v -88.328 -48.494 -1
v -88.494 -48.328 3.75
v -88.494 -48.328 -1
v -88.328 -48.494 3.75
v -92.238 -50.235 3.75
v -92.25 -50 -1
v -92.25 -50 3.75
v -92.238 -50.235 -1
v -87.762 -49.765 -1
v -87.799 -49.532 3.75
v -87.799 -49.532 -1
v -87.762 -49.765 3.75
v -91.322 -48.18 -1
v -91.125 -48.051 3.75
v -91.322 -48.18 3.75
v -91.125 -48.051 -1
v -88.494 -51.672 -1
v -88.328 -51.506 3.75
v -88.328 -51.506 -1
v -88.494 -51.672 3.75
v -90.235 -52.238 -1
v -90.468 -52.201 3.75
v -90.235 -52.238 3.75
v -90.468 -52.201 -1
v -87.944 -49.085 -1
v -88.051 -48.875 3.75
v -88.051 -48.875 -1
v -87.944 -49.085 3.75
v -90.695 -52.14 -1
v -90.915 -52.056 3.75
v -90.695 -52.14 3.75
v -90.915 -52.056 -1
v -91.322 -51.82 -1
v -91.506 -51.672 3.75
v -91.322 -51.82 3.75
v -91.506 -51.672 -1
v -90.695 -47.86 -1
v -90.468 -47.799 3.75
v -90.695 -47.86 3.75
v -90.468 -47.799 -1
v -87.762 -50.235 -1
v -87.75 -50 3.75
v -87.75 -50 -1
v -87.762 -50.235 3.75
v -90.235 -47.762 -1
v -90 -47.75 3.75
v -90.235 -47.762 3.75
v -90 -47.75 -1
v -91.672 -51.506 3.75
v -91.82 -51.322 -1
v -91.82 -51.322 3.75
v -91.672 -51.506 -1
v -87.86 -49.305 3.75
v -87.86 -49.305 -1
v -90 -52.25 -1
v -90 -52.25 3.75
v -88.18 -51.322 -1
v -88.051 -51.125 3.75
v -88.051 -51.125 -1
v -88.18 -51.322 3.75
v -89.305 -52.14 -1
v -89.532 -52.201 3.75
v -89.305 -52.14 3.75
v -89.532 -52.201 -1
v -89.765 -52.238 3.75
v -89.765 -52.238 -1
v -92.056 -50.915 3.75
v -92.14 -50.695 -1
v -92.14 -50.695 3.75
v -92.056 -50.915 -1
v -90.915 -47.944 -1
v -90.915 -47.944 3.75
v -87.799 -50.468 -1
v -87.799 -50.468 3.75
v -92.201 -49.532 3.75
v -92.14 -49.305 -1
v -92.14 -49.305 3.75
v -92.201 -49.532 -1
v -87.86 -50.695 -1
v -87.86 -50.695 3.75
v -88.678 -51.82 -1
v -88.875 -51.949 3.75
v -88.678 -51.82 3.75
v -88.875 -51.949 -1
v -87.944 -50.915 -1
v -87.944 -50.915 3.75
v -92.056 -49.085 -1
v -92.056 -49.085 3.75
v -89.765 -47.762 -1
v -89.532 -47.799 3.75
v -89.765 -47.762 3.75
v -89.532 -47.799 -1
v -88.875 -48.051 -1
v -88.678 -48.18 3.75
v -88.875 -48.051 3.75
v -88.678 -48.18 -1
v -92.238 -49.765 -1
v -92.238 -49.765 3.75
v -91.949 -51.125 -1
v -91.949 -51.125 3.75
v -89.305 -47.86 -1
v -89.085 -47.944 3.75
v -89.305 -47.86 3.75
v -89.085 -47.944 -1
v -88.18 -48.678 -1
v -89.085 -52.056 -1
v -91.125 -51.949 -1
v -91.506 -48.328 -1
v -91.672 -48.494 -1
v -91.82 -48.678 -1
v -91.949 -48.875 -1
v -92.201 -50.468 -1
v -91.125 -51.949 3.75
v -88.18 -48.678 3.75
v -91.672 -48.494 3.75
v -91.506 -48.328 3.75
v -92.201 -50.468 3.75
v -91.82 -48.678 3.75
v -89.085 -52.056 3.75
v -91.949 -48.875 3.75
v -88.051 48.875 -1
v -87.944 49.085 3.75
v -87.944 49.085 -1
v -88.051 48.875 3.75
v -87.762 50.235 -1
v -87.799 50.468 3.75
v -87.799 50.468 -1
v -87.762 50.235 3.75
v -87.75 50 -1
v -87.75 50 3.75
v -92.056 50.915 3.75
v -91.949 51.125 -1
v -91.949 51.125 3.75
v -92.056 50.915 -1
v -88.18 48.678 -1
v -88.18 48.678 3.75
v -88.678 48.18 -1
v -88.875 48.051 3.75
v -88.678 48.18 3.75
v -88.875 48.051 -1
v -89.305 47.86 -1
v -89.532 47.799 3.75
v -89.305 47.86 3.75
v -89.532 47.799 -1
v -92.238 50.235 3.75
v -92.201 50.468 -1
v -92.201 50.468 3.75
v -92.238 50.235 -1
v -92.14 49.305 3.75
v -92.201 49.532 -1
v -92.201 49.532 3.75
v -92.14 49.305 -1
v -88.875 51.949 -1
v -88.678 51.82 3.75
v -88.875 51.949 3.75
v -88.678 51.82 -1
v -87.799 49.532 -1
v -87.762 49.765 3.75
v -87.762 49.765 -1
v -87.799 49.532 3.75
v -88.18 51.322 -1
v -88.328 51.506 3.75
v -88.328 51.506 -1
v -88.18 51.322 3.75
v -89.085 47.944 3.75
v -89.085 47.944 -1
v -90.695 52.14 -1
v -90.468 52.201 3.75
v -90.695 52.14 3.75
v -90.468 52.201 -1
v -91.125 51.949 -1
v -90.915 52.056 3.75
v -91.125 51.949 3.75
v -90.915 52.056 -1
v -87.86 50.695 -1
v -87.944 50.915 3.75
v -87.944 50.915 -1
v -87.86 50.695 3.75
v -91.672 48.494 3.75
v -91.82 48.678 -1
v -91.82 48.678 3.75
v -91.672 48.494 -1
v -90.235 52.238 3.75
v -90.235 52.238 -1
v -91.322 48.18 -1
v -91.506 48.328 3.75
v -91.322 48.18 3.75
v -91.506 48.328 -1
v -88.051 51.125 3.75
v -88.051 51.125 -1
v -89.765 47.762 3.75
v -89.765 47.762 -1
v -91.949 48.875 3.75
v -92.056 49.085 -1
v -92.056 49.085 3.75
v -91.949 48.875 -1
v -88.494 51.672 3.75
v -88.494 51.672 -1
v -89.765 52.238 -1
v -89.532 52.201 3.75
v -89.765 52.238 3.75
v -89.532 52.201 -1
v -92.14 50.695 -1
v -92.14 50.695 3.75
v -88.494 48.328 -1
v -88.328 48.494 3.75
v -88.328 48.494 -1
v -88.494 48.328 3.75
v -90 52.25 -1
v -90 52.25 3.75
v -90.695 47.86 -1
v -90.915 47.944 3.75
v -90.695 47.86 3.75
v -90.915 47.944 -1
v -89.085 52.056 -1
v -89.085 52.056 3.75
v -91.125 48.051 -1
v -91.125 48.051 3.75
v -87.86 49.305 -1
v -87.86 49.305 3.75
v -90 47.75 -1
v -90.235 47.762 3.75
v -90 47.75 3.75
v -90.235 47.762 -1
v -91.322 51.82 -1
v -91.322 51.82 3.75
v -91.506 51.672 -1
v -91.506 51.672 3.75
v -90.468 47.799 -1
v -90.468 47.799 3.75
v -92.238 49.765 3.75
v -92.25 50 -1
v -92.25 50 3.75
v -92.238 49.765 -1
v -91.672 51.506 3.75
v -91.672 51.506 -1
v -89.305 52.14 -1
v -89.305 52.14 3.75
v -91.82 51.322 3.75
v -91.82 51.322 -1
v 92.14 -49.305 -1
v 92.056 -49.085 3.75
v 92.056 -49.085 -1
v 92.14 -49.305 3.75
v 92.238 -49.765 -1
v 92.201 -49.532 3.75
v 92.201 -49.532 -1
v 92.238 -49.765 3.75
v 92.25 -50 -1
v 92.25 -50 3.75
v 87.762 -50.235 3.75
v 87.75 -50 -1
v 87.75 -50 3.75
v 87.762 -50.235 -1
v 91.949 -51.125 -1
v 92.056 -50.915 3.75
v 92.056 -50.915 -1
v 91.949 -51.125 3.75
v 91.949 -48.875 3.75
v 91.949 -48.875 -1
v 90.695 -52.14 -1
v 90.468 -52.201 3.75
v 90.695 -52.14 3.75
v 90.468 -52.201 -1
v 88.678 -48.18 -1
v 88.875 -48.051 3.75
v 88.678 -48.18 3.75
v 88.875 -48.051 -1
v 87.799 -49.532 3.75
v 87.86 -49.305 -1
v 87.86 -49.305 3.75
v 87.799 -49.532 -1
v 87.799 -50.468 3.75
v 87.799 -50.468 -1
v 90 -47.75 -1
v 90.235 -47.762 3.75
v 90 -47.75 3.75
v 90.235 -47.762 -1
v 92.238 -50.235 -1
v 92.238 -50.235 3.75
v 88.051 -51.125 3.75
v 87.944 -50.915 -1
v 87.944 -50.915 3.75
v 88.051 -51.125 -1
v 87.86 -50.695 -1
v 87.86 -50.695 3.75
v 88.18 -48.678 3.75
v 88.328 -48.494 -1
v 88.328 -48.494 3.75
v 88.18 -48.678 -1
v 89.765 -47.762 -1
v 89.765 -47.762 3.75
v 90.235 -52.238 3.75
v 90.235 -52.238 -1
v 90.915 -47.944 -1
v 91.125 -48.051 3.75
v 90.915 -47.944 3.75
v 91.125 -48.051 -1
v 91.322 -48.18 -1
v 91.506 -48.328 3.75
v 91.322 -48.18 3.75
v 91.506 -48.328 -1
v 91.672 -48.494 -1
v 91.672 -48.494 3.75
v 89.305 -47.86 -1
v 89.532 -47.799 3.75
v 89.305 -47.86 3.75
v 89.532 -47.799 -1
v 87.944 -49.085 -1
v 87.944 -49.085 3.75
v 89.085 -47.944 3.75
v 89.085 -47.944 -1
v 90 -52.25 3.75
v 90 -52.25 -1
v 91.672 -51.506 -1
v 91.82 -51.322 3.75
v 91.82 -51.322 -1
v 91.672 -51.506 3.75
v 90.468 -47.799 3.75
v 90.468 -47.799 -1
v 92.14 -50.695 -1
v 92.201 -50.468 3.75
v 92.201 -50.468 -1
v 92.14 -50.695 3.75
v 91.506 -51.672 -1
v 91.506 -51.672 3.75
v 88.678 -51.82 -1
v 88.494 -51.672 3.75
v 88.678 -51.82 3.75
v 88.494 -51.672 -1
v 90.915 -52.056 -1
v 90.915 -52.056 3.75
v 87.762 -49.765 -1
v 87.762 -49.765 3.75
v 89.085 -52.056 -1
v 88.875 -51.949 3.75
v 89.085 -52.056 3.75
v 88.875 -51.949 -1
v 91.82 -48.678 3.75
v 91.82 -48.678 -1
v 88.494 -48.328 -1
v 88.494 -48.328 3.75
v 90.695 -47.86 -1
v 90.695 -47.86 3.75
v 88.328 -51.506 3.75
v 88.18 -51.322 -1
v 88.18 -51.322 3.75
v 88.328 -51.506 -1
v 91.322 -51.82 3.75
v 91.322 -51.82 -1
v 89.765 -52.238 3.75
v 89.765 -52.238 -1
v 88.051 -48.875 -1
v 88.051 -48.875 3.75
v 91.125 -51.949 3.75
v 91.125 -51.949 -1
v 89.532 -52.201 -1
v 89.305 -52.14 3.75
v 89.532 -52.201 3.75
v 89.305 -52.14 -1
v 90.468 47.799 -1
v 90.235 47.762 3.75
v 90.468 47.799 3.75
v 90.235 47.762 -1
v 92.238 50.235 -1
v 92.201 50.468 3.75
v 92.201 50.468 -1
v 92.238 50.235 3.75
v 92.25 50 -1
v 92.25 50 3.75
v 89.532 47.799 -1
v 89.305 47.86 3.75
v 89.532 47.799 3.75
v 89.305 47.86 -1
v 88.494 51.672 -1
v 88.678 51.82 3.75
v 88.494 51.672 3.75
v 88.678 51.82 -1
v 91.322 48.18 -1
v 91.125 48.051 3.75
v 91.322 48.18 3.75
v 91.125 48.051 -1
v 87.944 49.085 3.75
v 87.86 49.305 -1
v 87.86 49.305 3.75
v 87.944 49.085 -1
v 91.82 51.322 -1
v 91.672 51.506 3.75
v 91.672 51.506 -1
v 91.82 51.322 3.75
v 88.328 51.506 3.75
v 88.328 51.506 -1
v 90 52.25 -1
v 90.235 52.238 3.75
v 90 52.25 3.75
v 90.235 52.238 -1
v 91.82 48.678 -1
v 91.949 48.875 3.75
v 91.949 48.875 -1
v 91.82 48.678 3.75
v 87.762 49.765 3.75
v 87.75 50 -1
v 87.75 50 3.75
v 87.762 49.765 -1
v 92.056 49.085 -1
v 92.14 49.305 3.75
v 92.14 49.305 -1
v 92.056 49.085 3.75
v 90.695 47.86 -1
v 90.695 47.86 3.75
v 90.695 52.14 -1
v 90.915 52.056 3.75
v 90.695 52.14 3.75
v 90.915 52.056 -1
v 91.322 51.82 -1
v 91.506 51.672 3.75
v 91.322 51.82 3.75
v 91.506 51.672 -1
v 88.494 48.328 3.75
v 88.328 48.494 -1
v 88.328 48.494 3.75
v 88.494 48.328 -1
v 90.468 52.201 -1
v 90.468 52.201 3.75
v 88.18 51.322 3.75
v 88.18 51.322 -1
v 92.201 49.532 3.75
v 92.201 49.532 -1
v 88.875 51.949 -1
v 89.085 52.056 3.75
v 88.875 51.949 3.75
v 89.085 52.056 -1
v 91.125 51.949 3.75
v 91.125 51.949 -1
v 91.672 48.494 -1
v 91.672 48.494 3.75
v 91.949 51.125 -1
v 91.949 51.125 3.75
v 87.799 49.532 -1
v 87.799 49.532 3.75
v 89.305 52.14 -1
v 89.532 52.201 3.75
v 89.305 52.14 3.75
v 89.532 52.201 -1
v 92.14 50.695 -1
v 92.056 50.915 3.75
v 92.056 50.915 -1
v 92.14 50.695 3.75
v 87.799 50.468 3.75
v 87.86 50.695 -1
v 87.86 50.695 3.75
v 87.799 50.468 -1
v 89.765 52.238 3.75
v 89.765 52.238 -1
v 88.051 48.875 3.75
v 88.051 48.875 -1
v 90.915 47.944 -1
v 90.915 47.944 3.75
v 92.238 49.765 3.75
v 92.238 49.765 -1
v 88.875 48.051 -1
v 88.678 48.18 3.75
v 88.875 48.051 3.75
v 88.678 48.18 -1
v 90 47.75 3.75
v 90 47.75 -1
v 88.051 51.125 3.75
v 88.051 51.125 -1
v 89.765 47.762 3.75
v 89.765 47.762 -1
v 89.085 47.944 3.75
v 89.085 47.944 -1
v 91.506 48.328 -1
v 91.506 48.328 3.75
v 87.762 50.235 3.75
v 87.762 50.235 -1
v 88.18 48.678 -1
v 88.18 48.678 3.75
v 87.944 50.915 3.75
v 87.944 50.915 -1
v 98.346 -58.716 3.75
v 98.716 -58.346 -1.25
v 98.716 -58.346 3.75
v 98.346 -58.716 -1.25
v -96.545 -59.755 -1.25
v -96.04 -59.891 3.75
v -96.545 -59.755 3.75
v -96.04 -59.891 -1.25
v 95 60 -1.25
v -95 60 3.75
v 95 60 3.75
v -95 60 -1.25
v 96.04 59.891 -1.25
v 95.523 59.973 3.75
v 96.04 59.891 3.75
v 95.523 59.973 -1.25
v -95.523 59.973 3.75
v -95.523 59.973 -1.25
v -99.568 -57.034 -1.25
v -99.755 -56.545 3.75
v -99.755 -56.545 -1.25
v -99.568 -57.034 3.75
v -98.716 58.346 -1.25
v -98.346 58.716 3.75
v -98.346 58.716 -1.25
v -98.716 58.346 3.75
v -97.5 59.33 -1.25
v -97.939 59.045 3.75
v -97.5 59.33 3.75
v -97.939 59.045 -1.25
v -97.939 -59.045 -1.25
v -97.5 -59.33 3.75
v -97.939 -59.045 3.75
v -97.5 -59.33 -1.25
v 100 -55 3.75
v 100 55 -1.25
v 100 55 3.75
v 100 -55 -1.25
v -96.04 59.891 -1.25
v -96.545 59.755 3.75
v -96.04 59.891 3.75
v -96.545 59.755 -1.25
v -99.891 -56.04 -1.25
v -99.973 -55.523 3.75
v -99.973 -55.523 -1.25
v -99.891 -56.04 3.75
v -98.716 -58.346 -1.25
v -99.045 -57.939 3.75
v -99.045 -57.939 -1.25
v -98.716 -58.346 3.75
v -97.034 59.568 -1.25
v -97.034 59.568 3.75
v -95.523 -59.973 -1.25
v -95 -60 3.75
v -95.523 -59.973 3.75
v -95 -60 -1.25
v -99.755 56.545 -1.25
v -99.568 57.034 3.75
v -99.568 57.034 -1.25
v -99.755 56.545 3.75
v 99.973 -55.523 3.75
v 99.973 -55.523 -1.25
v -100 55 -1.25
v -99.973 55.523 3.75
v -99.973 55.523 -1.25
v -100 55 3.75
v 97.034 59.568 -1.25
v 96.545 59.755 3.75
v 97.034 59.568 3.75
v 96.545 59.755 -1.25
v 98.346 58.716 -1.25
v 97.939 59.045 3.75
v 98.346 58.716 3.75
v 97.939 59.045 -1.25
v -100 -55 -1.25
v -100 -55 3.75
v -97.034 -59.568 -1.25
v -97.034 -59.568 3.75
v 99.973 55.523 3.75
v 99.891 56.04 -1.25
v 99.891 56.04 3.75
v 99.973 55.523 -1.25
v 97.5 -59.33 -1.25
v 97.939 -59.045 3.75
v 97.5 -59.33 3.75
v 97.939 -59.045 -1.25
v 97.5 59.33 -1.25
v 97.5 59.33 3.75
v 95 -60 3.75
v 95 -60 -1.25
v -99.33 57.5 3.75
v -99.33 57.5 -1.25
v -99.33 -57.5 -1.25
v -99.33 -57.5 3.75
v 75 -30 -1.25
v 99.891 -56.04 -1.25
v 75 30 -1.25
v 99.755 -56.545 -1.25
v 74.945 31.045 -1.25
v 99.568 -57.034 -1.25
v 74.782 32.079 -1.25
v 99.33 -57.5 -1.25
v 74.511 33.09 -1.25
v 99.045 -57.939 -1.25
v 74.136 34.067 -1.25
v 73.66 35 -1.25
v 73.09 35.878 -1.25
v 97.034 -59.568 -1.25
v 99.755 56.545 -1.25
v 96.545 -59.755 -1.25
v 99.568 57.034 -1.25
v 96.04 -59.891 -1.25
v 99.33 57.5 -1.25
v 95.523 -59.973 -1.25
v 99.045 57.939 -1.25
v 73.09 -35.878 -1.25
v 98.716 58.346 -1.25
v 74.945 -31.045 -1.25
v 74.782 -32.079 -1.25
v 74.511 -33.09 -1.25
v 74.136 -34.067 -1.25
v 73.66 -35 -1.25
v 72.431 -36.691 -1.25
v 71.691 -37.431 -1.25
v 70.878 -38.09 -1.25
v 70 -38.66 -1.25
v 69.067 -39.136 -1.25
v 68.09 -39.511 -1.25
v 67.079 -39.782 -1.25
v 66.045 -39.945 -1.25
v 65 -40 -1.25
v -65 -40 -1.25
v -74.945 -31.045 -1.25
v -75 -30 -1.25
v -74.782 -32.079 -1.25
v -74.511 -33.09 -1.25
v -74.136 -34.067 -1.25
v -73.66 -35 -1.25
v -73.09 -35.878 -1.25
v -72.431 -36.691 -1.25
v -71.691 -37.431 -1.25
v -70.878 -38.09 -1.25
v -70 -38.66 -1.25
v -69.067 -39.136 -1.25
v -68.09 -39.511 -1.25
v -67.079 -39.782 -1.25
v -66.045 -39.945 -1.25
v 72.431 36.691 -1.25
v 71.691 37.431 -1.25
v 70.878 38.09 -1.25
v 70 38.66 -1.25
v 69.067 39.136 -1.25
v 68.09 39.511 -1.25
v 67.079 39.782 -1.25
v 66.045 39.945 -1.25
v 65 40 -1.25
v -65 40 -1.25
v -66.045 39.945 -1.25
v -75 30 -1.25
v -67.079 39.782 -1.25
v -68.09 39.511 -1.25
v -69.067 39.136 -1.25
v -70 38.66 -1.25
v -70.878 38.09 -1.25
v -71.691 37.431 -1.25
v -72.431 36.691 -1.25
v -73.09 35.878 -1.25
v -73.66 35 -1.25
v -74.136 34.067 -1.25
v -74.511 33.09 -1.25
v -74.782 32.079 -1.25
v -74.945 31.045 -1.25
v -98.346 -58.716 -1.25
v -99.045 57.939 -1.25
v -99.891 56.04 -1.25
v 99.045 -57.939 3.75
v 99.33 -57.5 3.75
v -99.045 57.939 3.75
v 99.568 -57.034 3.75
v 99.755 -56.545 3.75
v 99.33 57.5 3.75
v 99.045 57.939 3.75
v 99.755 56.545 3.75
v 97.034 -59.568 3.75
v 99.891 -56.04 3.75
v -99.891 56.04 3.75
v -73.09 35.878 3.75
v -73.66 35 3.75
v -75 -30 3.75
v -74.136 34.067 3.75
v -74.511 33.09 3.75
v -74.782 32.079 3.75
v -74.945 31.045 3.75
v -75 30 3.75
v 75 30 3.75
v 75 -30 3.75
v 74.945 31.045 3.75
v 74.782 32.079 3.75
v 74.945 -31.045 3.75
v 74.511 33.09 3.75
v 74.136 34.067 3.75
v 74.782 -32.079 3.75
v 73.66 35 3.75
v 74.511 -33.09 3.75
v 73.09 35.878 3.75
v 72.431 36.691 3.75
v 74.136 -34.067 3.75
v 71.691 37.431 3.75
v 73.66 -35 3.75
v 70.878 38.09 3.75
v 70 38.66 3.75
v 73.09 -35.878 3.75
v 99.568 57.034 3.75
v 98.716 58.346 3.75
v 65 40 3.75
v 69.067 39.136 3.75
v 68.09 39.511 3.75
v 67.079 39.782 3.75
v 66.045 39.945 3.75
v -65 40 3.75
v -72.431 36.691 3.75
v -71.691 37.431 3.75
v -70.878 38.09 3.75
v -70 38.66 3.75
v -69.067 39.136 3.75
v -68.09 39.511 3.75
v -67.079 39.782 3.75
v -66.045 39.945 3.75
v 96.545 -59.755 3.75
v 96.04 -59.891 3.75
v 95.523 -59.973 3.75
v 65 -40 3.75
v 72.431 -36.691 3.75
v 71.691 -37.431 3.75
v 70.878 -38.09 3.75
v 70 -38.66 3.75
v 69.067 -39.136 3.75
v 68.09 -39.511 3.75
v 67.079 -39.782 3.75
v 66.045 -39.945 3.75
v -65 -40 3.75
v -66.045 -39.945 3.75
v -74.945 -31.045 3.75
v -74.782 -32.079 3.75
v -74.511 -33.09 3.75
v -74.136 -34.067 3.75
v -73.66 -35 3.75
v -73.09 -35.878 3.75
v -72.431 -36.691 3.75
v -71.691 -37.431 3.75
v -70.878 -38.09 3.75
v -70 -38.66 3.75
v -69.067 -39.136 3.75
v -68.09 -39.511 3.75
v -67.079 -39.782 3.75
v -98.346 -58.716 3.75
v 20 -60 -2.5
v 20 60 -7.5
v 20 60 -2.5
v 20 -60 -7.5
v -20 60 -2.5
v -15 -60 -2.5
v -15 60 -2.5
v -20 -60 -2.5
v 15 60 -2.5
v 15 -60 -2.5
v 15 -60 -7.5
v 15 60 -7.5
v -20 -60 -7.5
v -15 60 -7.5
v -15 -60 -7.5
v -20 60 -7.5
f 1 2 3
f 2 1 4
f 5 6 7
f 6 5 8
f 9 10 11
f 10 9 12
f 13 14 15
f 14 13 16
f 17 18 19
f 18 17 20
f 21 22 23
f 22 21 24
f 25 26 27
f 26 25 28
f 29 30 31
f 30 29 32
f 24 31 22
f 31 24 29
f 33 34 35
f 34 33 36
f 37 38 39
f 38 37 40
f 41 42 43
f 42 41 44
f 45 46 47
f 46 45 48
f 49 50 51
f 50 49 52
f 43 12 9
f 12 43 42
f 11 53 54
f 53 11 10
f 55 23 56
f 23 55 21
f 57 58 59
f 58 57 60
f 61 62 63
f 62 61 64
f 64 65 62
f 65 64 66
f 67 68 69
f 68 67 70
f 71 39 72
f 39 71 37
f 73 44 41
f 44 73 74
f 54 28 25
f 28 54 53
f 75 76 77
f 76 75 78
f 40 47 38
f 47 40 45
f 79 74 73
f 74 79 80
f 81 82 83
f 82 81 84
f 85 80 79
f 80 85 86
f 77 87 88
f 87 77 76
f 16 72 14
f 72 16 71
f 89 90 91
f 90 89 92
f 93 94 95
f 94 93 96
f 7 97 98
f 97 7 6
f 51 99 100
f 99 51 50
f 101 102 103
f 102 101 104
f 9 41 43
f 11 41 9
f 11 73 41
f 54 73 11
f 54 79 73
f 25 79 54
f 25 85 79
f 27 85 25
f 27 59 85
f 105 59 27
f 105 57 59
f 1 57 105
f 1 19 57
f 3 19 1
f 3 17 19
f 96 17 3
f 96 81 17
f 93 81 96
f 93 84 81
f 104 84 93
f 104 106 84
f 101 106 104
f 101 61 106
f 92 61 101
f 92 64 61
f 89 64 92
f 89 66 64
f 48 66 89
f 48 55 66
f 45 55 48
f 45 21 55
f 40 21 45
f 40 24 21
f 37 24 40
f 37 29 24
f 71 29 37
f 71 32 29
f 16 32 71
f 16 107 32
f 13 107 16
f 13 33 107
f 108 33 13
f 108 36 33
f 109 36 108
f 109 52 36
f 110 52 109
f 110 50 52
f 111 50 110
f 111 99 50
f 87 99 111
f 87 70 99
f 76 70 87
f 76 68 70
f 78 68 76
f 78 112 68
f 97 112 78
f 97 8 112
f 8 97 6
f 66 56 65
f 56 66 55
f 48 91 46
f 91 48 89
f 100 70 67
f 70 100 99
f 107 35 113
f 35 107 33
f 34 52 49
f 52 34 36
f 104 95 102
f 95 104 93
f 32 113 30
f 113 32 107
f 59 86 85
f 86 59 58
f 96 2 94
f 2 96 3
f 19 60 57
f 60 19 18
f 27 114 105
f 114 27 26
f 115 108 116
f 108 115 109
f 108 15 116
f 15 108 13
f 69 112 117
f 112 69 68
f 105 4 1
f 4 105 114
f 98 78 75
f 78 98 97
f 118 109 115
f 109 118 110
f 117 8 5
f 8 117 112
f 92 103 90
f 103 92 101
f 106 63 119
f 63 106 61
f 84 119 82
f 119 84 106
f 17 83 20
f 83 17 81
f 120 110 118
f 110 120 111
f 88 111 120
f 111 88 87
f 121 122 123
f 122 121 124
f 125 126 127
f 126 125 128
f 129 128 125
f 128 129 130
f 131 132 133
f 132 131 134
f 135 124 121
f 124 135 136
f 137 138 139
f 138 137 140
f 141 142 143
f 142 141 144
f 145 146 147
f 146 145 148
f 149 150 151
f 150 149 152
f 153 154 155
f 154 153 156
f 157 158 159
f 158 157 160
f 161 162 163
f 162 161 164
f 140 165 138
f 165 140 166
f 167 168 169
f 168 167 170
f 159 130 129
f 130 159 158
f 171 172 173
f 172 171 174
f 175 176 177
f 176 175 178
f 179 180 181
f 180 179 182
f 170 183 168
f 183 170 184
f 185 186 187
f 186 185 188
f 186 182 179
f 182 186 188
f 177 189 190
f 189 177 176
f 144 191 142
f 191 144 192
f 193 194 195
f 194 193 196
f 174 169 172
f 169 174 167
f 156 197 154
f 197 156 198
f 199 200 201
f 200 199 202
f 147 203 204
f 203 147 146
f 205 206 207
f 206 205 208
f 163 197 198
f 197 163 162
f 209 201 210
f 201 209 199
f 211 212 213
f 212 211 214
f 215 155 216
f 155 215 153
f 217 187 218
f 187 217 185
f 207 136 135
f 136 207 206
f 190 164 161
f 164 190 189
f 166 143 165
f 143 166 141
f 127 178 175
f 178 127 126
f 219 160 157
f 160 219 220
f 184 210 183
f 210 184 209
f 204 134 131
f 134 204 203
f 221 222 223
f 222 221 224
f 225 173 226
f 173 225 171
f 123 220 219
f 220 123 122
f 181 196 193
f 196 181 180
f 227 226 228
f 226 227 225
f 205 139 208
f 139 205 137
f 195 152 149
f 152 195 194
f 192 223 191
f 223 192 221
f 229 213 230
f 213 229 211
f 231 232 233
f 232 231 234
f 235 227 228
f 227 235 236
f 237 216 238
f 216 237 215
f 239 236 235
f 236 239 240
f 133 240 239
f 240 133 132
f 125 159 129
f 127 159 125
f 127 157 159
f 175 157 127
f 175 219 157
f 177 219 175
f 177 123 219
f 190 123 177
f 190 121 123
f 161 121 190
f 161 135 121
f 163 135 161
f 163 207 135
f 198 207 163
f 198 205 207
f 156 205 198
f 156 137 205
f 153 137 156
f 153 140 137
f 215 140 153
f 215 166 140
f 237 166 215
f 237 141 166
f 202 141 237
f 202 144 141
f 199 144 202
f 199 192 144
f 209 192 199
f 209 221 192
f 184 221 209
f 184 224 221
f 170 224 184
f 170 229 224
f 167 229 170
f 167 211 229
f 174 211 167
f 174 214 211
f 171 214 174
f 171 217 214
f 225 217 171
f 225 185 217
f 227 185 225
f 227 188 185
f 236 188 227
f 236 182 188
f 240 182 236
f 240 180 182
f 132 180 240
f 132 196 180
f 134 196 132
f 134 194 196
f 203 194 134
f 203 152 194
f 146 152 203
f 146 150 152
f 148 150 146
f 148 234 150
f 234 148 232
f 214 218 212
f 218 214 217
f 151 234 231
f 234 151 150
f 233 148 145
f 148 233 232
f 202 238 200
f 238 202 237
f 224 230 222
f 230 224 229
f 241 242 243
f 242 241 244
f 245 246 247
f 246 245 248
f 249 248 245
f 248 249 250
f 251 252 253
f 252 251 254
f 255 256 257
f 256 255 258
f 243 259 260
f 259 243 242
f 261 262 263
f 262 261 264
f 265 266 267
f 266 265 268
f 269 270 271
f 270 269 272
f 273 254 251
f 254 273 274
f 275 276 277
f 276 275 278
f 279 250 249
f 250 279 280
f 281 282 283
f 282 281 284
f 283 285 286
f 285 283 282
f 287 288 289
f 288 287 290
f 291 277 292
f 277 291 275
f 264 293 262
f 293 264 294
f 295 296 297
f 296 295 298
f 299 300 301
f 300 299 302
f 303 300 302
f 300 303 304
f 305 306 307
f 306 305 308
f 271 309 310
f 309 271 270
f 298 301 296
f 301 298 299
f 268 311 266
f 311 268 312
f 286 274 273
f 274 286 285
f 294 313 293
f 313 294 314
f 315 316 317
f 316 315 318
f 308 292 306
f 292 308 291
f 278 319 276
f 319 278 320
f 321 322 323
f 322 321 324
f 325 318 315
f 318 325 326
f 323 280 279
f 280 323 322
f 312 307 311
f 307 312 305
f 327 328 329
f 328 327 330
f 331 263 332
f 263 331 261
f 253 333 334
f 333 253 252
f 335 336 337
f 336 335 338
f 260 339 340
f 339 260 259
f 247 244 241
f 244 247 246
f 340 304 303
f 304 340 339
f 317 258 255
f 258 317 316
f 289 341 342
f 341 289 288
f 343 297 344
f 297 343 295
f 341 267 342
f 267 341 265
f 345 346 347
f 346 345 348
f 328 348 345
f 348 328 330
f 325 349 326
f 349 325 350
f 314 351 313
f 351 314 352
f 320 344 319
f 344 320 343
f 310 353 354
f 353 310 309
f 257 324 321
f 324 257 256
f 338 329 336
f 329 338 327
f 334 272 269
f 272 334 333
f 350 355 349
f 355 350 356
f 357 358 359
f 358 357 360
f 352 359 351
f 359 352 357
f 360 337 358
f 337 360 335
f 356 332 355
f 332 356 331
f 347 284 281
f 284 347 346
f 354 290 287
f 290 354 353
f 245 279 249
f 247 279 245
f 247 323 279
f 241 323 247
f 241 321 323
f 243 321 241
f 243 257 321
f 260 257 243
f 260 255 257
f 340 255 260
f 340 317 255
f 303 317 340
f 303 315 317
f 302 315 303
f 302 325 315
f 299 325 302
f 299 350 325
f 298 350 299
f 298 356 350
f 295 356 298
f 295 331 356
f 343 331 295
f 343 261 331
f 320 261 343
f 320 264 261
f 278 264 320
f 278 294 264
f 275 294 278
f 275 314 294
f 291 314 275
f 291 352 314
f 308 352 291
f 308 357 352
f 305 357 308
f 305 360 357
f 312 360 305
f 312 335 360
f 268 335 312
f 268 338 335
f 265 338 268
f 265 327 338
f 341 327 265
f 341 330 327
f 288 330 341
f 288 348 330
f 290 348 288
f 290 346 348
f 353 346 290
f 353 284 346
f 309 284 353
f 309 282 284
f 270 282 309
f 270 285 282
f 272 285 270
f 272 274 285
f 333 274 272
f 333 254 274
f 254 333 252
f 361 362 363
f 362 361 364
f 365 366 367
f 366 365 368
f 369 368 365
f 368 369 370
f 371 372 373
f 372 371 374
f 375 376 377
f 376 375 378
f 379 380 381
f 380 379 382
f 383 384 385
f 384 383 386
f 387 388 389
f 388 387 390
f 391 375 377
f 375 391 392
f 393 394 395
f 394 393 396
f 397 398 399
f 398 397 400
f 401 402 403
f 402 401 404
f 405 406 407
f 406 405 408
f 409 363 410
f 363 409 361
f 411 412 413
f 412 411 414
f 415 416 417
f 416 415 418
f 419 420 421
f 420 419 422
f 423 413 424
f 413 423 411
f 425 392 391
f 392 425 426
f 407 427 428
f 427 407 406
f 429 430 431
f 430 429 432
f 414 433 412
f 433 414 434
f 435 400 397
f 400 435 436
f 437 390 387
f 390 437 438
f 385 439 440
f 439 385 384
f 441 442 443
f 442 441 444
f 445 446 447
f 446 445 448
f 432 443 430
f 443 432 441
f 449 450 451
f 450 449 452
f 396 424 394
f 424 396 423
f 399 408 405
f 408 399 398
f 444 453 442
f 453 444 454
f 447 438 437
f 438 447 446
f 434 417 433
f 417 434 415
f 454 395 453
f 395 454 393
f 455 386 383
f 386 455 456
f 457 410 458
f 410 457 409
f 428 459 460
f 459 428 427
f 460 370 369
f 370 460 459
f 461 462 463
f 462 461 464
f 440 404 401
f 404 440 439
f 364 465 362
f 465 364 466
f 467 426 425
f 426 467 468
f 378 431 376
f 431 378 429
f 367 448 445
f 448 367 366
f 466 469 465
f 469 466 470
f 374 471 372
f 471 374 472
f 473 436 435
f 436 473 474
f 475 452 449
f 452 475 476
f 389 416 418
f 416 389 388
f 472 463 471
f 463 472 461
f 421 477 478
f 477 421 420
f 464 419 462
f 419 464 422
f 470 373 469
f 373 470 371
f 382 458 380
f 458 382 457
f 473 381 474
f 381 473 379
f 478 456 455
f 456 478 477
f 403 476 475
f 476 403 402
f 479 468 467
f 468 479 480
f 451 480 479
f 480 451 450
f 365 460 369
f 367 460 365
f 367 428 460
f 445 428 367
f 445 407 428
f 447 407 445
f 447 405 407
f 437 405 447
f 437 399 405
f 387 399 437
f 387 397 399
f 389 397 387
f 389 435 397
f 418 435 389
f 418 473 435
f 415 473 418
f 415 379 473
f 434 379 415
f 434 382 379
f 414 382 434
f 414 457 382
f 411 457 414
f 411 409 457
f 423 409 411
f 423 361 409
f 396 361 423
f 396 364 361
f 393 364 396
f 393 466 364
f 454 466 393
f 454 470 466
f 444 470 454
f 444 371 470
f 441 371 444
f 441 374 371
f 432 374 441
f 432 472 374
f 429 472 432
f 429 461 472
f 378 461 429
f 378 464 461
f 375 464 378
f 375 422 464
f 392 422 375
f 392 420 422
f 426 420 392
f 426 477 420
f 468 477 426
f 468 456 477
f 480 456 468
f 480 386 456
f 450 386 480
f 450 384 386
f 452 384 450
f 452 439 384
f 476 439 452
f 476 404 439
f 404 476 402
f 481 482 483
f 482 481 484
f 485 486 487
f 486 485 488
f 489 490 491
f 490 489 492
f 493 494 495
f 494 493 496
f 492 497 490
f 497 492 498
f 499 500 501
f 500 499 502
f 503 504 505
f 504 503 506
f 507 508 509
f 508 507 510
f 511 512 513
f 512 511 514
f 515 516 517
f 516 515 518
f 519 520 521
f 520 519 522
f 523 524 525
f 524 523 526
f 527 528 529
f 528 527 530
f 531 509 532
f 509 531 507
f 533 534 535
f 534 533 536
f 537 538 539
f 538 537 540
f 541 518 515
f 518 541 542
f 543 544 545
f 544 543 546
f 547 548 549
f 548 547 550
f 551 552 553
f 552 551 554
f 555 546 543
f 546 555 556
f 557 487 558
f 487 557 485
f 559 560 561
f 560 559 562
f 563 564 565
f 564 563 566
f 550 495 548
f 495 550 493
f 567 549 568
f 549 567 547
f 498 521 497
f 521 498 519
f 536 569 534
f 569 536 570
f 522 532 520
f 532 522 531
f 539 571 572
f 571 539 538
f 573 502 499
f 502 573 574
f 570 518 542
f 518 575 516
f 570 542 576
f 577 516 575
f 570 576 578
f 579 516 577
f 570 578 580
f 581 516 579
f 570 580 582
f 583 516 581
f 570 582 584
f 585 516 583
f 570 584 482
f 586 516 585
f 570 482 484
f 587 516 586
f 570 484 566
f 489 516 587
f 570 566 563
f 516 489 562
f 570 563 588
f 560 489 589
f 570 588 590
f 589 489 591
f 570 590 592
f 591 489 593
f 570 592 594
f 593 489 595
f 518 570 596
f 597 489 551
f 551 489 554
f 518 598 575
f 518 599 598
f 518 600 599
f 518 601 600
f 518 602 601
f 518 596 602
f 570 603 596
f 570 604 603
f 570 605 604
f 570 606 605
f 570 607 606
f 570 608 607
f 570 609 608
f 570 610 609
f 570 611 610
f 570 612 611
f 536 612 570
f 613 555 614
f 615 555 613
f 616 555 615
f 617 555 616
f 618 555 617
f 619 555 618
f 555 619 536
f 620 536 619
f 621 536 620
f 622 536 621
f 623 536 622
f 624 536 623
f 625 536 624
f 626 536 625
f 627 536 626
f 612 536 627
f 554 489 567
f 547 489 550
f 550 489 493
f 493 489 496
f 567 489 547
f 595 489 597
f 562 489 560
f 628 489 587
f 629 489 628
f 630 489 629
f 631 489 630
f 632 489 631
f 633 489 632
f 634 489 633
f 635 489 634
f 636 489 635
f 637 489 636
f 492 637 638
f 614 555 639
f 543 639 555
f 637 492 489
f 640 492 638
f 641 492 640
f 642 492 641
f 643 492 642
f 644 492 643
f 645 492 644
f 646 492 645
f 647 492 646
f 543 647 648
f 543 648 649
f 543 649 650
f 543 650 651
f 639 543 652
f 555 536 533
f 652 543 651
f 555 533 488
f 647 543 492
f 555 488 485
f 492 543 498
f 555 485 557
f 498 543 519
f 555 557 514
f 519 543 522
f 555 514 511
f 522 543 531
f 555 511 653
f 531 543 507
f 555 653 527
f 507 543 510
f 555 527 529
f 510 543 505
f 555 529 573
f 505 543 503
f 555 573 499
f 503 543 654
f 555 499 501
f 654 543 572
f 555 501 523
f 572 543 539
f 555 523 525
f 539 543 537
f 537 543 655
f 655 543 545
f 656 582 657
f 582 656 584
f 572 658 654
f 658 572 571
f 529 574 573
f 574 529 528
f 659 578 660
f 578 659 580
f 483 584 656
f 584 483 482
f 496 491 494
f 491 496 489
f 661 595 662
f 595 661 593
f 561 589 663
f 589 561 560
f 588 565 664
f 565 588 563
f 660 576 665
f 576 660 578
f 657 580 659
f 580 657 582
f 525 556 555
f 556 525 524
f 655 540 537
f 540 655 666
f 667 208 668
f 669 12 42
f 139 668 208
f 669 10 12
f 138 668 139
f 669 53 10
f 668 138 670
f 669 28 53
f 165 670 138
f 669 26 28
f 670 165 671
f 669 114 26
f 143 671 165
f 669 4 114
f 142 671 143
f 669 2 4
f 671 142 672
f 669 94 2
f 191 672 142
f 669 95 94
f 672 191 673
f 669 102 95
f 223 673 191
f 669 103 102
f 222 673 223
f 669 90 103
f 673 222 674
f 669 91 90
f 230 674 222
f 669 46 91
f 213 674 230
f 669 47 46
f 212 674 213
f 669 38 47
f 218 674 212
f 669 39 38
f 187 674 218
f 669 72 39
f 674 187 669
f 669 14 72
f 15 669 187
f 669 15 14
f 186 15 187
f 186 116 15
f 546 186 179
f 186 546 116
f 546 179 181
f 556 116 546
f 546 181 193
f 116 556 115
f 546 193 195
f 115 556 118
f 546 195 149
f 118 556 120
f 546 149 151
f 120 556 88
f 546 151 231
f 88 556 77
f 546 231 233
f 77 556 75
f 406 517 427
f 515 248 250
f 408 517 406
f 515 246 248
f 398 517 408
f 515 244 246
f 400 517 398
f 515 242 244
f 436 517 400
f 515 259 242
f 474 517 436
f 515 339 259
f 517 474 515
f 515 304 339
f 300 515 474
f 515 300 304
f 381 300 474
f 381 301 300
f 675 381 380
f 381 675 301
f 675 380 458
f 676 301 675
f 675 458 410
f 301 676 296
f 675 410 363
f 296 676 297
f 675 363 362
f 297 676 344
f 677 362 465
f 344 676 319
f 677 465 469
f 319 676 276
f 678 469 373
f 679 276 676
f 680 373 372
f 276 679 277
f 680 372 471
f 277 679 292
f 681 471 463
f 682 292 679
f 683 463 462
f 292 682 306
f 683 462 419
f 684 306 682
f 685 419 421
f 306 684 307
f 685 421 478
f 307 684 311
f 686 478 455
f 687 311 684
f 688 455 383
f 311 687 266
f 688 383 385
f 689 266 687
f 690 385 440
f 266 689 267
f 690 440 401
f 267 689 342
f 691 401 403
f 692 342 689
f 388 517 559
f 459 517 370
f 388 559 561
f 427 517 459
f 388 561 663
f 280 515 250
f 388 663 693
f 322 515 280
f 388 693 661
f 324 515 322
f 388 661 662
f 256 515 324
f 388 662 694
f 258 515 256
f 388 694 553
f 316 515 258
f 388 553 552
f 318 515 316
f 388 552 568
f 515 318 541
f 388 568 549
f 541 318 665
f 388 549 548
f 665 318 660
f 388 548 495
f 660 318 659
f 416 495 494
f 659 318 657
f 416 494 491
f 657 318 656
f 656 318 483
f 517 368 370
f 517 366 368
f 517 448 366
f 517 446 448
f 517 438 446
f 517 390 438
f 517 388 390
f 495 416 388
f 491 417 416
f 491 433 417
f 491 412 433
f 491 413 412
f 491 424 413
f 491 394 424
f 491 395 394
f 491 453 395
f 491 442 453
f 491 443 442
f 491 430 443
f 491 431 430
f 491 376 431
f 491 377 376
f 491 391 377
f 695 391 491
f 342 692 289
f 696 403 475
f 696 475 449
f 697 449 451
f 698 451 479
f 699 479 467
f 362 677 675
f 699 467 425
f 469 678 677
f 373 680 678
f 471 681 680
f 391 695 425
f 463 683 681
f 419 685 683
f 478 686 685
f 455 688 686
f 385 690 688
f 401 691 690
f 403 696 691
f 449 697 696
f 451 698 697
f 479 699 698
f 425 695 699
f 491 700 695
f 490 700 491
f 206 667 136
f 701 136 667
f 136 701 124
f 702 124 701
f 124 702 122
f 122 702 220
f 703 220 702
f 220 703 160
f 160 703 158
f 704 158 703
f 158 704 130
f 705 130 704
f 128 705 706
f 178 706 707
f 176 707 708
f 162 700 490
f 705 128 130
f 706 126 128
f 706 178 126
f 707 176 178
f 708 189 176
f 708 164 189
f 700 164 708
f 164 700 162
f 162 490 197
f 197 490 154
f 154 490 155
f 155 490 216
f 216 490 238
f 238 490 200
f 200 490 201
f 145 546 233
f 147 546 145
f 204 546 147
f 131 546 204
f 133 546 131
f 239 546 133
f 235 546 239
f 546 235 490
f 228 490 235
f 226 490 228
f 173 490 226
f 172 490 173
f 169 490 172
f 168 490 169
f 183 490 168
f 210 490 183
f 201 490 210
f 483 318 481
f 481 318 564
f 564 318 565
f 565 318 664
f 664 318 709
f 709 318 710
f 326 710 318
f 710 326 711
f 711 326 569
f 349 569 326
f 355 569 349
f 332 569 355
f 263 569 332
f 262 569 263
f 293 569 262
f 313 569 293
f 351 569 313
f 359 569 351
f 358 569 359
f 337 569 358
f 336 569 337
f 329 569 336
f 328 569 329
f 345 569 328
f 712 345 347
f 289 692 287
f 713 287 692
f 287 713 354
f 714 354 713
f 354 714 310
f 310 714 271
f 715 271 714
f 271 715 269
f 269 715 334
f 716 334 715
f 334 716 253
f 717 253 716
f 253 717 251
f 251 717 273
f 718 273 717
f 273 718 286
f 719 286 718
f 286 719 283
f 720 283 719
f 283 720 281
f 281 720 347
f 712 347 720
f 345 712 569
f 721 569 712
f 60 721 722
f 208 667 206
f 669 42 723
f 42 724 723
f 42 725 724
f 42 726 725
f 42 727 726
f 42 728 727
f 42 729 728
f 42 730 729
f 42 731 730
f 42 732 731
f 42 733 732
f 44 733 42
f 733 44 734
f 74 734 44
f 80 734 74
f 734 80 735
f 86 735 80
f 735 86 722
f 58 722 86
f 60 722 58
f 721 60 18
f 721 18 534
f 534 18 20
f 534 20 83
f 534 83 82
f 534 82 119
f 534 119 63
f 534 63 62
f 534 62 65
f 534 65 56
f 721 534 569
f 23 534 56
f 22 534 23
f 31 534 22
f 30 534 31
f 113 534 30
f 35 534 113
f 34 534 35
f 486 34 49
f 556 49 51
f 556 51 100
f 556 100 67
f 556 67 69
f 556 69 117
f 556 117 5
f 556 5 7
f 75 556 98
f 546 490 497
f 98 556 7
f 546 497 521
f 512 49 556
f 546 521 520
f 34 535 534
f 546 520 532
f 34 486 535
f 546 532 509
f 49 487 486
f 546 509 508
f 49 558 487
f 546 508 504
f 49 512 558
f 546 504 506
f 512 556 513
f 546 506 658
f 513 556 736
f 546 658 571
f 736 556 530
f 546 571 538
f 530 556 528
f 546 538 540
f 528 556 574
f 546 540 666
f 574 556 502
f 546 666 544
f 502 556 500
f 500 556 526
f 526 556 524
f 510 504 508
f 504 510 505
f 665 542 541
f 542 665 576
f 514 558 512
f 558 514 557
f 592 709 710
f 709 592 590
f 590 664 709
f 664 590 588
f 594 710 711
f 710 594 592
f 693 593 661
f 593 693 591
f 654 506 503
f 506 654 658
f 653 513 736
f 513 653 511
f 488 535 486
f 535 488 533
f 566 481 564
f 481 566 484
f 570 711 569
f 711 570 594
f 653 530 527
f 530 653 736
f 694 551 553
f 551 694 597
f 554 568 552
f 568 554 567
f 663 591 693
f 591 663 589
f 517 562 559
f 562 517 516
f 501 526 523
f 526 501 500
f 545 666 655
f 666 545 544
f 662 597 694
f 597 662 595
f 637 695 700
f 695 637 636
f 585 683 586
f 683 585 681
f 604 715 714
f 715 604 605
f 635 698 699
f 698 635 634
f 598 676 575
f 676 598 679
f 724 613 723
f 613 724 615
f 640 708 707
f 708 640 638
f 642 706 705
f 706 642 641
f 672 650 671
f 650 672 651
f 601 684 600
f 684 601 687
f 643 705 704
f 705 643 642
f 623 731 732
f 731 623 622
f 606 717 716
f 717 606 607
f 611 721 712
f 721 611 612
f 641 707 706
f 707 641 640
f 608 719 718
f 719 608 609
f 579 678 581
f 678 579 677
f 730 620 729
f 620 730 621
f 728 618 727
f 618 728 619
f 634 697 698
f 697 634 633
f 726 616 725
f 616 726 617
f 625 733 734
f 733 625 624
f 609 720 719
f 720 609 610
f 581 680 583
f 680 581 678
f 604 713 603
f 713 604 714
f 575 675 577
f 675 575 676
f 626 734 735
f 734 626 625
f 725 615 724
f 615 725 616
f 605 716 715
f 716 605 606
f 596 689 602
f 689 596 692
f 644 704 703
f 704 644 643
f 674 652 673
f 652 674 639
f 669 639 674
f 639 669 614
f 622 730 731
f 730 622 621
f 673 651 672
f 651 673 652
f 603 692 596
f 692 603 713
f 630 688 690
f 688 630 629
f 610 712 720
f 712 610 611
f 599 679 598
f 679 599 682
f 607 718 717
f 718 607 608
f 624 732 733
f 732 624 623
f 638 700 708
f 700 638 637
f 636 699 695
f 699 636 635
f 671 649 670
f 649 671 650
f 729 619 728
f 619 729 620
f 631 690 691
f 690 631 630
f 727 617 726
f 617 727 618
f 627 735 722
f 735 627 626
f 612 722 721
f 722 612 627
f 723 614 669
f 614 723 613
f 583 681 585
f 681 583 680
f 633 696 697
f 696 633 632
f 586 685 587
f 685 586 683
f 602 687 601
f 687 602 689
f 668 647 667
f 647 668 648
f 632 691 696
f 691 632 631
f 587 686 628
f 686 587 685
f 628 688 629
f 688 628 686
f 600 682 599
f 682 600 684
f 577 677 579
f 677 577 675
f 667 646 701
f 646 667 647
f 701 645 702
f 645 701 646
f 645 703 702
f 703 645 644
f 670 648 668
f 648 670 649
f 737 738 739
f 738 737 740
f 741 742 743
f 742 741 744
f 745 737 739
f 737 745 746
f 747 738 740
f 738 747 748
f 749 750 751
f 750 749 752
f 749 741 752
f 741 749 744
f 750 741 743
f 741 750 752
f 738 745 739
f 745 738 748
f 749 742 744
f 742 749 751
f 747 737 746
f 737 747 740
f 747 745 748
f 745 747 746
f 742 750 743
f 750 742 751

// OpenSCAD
// ShopVac Rat Trap - Hammond Box Adapter
// Allows mounting a commercial Hammond PN-1334-C box to the trap body
// Uses snap-fits to attach to the trap, and screws to hold the box

$fn = 60;

// Hammond PN-1334-C Mounting Holes (approximate, verify with datasheet)
hole_spacing_x = 180;
hole_spacing_y = 100;

module hammond_mount() {
    difference() {
        // Base Plate
        rounded_plate(200, 120, 5, 5);

        // Mounting Holes for Hammond Box (M4)
        for(x = [-hole_spacing_x/2, hole_spacing_x/2]) {
            for(y = [-hole_spacing_y/2, hole_spacing_y/2]) {
                translate([x, y, -1])
                    cylinder(d=4.5, h=10);
            }
        }

        // Central Cutout for Weight Reduction
        rounded_plate(150, 80, 10, 10);
    }

    // Snap Clips for Trap Body (Bottom side)
    // Matches the trap body's mounting rails
    translate([0, 0, -5]) {
        // ... Snap fit geometry ...
        difference() {
            cube([40, 120, 5], center=true);
            cube([30, 130, 5], center=true); // Slot
        }
    }
}

module rounded_plate(x, y, z, r) {
    minkowski() {
        cube([x-2*r, y-2*r, z/2], center=true);
        cylinder(r=r, h=z/2);
    }
}

hammond_mount();
